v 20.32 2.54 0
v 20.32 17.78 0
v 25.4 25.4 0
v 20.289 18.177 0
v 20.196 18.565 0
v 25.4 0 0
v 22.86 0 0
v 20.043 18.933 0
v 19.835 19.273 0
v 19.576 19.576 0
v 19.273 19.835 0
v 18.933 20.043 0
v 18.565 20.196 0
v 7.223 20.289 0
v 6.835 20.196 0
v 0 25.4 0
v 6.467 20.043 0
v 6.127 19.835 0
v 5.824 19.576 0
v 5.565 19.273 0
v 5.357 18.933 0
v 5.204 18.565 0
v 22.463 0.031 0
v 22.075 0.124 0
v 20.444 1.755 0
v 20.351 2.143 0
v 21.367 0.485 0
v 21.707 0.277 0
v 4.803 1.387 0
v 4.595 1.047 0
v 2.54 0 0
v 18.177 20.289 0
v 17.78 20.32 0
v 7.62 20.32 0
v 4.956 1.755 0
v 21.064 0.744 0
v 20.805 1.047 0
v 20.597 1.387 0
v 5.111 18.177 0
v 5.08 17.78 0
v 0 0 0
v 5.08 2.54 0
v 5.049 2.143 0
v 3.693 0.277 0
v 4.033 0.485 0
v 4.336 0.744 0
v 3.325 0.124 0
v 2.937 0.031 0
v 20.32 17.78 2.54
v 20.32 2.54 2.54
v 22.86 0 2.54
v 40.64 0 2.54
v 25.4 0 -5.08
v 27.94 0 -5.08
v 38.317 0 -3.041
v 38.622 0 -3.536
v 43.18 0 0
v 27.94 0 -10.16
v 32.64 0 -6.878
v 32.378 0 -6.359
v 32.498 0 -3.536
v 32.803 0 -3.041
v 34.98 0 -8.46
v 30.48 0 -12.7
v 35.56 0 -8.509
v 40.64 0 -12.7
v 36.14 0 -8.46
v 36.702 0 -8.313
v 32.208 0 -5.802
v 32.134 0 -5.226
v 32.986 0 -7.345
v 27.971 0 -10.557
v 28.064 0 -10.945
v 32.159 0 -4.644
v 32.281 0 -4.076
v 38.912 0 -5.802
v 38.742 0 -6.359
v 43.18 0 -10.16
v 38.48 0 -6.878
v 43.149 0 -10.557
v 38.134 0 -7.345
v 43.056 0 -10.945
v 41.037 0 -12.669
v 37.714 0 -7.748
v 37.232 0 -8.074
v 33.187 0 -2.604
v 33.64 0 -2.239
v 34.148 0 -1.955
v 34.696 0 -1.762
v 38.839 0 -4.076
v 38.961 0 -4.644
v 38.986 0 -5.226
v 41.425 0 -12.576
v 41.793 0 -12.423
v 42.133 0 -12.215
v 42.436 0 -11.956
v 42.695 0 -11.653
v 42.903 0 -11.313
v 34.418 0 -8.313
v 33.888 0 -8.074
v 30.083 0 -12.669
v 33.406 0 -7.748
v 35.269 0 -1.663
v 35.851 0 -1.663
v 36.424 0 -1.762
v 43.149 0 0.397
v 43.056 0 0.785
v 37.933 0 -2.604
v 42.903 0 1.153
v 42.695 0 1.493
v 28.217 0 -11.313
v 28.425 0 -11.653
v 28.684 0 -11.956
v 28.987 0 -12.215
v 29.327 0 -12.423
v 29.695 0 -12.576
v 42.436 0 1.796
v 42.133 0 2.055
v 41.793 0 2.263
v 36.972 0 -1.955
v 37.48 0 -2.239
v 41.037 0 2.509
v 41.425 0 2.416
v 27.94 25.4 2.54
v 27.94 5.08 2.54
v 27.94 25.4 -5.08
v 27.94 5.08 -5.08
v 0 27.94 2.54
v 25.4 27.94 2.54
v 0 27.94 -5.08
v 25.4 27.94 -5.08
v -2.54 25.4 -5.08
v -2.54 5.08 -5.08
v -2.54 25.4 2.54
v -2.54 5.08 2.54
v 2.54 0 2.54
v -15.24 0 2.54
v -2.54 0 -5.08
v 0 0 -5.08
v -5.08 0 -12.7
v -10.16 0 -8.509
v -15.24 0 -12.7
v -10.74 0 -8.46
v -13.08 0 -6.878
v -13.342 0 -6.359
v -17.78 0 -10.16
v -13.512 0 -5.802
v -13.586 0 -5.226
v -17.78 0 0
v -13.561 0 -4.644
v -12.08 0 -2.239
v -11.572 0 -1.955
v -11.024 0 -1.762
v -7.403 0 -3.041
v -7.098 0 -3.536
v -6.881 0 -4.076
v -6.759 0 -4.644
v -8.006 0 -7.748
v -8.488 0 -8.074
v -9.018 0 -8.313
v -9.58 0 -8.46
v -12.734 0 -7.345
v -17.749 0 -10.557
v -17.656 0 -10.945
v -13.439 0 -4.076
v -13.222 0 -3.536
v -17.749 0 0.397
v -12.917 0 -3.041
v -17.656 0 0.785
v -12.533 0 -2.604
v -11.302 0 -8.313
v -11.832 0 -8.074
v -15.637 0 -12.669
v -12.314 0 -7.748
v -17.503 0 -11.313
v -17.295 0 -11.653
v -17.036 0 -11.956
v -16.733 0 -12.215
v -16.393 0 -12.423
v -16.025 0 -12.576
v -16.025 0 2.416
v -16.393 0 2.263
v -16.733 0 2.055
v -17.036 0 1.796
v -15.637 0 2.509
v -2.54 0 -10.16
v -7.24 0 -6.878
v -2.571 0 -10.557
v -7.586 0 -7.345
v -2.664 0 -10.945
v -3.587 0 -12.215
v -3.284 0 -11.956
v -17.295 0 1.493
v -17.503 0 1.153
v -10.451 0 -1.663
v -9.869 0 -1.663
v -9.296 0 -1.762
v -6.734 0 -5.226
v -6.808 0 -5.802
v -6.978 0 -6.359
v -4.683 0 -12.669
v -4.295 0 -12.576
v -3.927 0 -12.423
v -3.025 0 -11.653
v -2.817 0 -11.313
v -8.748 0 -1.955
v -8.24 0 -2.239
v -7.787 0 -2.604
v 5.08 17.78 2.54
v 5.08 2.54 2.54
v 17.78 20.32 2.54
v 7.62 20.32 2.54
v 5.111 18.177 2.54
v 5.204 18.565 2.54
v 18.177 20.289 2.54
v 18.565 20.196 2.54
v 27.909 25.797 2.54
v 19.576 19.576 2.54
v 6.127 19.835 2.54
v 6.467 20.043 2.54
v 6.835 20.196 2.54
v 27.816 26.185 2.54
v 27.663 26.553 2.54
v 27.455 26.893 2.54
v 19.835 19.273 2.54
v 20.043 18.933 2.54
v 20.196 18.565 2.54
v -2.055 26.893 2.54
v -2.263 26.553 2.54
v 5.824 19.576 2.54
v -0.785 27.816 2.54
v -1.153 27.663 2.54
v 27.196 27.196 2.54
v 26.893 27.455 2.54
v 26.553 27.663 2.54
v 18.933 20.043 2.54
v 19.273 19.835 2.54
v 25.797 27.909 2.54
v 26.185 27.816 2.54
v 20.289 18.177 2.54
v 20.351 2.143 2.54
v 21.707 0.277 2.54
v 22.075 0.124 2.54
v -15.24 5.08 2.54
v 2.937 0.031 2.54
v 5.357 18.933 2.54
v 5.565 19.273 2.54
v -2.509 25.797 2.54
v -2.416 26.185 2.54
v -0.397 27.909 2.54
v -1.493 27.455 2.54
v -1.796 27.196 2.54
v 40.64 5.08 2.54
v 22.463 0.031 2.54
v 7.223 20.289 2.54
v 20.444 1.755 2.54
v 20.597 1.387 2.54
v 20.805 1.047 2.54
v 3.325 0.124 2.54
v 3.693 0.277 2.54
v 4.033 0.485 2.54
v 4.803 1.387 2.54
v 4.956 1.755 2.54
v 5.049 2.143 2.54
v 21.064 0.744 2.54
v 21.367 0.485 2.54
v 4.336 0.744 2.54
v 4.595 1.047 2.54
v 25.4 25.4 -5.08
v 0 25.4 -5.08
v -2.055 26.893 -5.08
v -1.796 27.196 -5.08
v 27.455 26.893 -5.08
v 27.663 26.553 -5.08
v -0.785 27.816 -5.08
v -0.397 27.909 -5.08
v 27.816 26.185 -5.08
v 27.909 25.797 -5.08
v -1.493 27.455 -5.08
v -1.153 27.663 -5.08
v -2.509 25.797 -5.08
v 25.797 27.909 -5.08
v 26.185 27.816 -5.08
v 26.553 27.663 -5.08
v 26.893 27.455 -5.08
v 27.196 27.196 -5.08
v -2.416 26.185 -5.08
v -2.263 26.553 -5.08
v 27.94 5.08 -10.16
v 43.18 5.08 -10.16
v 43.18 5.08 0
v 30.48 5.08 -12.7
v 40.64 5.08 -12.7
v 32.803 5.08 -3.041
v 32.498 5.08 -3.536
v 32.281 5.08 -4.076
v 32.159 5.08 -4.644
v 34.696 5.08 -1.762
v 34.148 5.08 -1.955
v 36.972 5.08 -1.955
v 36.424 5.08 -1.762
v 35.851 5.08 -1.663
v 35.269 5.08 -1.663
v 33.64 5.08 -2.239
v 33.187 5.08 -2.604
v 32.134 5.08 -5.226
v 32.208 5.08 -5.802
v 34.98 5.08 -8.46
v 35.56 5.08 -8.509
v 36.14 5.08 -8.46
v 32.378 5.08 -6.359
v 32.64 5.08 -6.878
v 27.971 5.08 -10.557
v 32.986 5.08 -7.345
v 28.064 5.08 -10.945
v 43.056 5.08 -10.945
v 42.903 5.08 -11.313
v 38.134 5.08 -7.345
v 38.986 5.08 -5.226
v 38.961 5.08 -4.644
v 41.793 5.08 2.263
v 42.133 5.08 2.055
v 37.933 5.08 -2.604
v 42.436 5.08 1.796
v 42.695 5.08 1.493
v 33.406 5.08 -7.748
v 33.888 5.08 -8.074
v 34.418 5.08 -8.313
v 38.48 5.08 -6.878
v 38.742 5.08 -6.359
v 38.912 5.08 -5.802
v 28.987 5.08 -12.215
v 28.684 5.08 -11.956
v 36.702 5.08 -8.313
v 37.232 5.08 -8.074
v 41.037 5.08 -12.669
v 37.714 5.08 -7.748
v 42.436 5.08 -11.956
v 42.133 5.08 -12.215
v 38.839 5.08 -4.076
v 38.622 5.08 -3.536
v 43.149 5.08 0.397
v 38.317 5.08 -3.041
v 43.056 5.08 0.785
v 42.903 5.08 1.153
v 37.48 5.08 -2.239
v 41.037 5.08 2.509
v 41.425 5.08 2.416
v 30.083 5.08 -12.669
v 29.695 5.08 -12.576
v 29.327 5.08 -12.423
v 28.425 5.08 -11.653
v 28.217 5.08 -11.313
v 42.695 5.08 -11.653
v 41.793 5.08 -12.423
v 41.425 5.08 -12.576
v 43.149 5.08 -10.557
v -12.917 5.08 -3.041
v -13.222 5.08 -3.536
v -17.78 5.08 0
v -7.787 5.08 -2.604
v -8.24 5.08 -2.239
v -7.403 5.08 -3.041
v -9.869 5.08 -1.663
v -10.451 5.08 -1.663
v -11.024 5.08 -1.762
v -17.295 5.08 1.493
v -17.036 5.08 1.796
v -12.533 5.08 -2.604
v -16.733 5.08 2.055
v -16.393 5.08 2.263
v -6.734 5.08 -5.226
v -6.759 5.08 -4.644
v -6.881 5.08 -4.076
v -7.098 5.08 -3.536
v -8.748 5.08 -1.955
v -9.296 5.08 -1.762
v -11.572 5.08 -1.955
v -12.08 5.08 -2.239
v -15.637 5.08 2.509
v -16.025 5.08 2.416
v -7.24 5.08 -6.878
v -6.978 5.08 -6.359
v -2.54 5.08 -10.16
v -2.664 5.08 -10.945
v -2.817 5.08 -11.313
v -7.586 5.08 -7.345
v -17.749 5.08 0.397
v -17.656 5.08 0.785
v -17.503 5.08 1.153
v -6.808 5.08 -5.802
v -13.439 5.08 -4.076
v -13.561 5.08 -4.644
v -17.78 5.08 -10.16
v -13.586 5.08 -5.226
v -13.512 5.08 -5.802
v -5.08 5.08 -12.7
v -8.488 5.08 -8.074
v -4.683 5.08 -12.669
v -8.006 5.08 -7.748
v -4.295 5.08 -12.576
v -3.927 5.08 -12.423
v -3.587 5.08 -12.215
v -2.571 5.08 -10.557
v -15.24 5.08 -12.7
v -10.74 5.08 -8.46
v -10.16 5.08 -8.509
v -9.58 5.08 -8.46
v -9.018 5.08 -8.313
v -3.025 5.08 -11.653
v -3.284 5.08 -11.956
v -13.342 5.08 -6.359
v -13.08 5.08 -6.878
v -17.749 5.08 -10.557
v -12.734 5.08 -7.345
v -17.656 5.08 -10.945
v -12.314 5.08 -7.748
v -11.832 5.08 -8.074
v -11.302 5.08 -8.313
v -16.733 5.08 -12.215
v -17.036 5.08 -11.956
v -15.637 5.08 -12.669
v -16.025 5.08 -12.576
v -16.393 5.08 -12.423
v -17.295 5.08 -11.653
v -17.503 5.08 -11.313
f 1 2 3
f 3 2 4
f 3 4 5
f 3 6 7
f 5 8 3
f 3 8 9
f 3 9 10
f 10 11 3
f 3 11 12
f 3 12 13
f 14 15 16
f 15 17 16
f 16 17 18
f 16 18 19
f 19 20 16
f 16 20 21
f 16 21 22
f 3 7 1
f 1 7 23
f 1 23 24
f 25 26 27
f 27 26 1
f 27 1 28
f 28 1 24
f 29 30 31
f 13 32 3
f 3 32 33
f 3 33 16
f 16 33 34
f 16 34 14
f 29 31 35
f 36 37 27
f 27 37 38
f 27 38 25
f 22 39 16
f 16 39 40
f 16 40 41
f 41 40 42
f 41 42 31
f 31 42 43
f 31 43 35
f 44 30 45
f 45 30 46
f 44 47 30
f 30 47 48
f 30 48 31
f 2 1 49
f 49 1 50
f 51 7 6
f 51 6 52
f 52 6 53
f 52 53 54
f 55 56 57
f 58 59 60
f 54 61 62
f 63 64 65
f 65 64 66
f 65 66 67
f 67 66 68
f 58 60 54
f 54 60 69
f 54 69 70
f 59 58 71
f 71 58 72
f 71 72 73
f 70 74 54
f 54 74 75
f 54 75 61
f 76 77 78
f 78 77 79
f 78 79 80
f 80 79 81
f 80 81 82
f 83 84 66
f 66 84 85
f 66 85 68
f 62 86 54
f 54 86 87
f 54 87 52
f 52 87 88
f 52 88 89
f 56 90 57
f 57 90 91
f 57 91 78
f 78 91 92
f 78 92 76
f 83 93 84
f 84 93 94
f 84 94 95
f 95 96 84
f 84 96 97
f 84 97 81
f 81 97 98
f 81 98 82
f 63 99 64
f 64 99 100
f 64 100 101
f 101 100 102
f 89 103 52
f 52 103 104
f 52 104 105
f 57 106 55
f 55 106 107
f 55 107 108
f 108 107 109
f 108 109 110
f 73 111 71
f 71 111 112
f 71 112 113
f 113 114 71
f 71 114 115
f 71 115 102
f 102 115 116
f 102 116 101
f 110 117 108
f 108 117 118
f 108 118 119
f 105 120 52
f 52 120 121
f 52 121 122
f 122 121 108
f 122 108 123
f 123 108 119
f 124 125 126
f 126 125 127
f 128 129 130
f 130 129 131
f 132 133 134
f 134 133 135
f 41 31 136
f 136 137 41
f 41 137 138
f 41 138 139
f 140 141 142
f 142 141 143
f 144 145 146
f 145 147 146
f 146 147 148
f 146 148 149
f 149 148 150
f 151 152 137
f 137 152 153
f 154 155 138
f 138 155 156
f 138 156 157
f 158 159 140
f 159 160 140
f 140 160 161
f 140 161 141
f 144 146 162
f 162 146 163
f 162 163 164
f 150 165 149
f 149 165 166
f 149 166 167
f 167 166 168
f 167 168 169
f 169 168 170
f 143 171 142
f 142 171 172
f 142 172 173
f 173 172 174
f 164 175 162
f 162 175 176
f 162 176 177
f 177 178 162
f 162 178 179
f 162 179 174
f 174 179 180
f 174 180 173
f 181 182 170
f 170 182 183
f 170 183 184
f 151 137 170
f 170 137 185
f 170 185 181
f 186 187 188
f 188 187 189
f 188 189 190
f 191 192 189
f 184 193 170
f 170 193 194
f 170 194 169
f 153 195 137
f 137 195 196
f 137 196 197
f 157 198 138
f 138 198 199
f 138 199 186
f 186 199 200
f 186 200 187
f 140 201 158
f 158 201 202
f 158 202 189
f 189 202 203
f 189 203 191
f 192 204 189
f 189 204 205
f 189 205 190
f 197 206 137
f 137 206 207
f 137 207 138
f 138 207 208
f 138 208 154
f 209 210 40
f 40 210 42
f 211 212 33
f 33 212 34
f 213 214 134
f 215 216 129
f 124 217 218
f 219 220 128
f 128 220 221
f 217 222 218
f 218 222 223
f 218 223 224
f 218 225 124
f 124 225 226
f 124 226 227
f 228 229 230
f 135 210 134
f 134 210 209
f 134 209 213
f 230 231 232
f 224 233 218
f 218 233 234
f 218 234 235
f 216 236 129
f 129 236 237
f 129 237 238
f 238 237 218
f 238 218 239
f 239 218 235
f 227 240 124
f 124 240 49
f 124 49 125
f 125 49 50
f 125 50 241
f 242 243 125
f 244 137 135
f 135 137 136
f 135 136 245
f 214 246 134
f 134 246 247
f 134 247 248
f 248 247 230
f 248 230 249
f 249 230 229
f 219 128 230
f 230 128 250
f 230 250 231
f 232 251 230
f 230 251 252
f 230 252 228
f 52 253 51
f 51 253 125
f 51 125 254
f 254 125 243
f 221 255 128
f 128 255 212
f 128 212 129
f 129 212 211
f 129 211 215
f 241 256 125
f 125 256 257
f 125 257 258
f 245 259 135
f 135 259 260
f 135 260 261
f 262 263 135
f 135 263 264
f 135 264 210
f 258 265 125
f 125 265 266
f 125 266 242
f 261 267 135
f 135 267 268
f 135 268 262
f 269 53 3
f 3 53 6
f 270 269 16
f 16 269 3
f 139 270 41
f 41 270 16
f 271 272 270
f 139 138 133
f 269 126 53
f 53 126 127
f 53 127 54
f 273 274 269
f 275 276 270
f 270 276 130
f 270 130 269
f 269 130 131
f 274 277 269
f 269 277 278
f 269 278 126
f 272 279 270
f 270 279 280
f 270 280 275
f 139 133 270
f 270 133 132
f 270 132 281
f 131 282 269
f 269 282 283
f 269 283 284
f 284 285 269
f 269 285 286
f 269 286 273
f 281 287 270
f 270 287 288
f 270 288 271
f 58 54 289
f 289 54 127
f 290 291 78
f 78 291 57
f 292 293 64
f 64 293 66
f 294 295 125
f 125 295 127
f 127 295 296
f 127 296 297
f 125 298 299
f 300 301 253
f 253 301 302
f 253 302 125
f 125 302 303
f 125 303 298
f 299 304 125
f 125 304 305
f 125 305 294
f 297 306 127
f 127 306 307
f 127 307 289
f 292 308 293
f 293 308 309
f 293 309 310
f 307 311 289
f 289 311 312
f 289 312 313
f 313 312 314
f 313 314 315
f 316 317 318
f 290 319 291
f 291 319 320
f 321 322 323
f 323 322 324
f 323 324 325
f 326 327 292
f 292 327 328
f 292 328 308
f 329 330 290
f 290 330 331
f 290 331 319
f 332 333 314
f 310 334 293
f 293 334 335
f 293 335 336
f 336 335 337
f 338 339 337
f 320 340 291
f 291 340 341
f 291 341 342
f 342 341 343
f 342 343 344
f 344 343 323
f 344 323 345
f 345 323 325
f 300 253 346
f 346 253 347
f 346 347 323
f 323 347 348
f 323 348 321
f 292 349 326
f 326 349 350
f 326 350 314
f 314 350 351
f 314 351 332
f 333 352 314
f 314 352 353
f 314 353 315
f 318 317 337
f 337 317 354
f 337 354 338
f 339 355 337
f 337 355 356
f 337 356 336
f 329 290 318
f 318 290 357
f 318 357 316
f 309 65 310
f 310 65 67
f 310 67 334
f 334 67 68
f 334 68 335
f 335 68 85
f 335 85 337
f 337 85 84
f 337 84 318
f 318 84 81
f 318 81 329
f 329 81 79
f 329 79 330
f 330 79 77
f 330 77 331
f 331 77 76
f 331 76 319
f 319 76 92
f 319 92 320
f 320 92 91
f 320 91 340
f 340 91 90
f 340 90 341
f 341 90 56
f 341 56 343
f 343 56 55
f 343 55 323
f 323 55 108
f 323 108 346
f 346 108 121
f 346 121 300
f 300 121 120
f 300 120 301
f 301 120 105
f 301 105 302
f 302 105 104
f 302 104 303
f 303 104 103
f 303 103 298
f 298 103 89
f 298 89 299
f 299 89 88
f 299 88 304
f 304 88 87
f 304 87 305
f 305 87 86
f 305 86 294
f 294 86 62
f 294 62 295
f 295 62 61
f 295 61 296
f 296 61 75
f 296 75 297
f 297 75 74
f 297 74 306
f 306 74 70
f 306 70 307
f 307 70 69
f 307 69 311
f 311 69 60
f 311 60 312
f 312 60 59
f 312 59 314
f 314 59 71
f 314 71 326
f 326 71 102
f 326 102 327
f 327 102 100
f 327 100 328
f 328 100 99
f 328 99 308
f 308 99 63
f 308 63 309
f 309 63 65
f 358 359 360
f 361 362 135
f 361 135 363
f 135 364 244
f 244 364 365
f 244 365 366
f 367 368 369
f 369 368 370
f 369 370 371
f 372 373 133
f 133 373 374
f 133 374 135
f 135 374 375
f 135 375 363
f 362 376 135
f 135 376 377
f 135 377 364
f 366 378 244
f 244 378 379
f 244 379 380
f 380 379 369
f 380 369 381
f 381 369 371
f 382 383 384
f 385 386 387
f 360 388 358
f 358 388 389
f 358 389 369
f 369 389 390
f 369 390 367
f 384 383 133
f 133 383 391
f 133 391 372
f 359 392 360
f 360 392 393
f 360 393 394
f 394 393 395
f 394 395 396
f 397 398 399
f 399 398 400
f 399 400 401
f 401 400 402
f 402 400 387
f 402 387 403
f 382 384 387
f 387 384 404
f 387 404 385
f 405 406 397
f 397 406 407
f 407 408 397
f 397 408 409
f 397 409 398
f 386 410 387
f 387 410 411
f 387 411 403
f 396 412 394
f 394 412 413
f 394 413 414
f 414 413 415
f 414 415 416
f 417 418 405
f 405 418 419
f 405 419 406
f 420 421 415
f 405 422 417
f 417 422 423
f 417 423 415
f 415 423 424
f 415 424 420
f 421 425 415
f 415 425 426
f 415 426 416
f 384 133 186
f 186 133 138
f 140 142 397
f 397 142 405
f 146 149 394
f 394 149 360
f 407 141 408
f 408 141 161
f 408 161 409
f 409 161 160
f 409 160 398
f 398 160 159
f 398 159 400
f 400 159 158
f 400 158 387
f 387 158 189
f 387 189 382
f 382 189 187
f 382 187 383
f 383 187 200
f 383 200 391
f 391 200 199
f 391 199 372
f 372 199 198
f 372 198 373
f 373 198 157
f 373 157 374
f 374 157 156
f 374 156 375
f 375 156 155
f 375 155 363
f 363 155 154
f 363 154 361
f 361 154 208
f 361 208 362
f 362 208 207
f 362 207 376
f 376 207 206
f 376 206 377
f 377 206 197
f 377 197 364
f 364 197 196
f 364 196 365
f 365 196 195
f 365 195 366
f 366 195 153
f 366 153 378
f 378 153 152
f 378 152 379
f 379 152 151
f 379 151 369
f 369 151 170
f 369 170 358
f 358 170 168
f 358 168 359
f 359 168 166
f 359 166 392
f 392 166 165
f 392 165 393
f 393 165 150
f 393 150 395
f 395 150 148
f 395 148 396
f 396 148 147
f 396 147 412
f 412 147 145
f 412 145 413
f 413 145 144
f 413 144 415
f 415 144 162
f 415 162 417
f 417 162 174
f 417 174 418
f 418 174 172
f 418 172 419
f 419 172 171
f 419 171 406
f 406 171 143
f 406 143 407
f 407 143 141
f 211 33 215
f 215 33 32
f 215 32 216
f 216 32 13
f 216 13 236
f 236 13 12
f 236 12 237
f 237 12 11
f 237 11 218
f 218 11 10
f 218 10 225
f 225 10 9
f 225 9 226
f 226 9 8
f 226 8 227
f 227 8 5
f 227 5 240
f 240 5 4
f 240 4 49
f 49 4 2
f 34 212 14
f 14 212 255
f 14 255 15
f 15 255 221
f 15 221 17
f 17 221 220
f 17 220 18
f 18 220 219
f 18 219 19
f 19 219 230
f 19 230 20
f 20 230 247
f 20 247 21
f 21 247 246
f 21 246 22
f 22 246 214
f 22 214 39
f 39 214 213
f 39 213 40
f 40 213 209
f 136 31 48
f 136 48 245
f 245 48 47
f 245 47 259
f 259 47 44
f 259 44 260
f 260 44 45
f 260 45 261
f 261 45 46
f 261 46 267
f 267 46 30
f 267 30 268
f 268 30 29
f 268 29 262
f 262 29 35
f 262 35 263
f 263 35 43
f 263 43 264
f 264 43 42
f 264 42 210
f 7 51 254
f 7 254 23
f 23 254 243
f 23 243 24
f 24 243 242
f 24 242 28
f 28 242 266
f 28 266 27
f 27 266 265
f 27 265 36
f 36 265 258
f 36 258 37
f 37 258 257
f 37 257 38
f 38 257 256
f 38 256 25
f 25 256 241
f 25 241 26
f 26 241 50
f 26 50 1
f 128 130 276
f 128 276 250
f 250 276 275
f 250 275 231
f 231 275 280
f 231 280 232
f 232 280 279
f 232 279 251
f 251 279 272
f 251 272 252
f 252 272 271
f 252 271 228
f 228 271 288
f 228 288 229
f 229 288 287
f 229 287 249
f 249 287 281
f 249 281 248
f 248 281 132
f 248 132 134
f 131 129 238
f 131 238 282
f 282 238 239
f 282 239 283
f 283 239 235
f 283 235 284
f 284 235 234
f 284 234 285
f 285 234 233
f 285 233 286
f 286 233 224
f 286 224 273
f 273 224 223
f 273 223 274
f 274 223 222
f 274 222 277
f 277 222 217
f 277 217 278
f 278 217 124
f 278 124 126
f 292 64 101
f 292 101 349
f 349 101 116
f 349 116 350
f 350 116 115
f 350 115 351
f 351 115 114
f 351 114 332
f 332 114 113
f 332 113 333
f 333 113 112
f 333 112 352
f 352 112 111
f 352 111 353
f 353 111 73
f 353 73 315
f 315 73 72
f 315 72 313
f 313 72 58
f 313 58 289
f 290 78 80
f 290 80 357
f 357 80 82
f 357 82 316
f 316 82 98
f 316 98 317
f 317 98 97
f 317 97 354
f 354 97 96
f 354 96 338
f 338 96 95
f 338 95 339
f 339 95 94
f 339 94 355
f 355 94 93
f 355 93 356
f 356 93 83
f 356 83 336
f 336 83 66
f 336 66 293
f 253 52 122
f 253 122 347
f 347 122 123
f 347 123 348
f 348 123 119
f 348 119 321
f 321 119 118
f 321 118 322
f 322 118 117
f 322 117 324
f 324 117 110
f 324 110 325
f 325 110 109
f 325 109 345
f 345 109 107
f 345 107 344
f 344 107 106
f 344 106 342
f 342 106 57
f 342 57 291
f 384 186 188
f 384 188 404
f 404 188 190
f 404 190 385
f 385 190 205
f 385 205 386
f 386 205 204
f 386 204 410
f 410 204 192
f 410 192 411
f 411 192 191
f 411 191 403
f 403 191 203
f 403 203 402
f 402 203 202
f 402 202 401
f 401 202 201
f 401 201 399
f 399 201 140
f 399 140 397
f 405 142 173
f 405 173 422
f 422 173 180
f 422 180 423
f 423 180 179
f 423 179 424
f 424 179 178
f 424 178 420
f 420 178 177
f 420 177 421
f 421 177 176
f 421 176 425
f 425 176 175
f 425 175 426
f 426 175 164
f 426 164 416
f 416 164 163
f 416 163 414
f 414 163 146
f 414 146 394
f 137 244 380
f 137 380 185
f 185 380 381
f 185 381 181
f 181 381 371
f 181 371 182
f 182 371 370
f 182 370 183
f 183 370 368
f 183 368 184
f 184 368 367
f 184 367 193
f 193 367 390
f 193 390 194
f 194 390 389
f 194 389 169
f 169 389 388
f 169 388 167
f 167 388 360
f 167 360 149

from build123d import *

# Parameters (mm, degrees)
BOSS_EXTRUDE1_DEPTH = 2.54
BOSS_EXTRUDE2_DEPTH = 5.08
SKETCH2_W           = 15.24
SKETCH2_H           = 15.24
SKETCH2_R           = 3.429
BOSS_EXTRUDE3_DEPTH = 5.08
FILLET1_R           = 2.54


with BuildPart() as part:
    # Sketch1 → Boss-Extrude1 (new body)
    with BuildSketch(Plane.XY):
        Polygon((-2.54, 27.94), (-2.54, 0), (5.08, 0), (5.08, 20.32), (20.32, 20.32), (20.32, 0), (27.94, 0), (27.94, 27.94), align=None)
    extrude(amount=BOSS_EXTRUDE1_DEPTH)

    # Sketch1<3> → Boss-Extrude2 (add)
    with BuildSketch(Plane.XY):
        Polygon((-2.54, 27.94), (-2.54, 0), (0, 0), (0, 25.4), (25.4, 25.4), (25.4, 0), (27.94, 0), (27.94, 27.94), align=None)
    extrude(amount=-BOSS_EXTRUDE2_DEPTH)

    # Sketch2 → Boss-Extrude3 (add)
    with BuildSketch(Plane.XZ):
        with Locations((35.56, -5.08)):
            Rectangle(SKETCH2_W, SKETCH2_H)
        with Locations((35.56, -5.08)):
            Circle(SKETCH2_R, mode=Mode.SUBTRACT)
    boss_extrude3 = extrude(amount=-BOSS_EXTRUDE3_DEPTH)

    # Mirror1: Boss-Extrude3 across plane
    add(boss_extrude3.mirror(Plane(origin=(12.7, 0, 0), x_dir=(0, 0, 1), z_dir=(1, 0, 0))))

    # Fillet1
    fillet1_edges = [part.edges().sort_by_distance(p)[0] for p in [
        (20.32, 20.32, 1.27),
        (5.08, 20.32, 1.27),
        (5.08, 0, 1.27),
        (20.32, 0, 1.27),
        (-2.54, 27.94, -1.27),
        (27.94, 27.94, -1.27),
        (27.94, 2.54, -12.7),
        (43.18, 2.54, -12.7),
        (43.18, 2.54, 2.54),
        (-2.54, 2.54, -12.7),
        (-17.78, 2.54, -12.7),
        (-17.78, 2.54, 2.54),
    ]]
    fillet(fillet1_edges, radius=FILLET1_R)


solid = part.part
